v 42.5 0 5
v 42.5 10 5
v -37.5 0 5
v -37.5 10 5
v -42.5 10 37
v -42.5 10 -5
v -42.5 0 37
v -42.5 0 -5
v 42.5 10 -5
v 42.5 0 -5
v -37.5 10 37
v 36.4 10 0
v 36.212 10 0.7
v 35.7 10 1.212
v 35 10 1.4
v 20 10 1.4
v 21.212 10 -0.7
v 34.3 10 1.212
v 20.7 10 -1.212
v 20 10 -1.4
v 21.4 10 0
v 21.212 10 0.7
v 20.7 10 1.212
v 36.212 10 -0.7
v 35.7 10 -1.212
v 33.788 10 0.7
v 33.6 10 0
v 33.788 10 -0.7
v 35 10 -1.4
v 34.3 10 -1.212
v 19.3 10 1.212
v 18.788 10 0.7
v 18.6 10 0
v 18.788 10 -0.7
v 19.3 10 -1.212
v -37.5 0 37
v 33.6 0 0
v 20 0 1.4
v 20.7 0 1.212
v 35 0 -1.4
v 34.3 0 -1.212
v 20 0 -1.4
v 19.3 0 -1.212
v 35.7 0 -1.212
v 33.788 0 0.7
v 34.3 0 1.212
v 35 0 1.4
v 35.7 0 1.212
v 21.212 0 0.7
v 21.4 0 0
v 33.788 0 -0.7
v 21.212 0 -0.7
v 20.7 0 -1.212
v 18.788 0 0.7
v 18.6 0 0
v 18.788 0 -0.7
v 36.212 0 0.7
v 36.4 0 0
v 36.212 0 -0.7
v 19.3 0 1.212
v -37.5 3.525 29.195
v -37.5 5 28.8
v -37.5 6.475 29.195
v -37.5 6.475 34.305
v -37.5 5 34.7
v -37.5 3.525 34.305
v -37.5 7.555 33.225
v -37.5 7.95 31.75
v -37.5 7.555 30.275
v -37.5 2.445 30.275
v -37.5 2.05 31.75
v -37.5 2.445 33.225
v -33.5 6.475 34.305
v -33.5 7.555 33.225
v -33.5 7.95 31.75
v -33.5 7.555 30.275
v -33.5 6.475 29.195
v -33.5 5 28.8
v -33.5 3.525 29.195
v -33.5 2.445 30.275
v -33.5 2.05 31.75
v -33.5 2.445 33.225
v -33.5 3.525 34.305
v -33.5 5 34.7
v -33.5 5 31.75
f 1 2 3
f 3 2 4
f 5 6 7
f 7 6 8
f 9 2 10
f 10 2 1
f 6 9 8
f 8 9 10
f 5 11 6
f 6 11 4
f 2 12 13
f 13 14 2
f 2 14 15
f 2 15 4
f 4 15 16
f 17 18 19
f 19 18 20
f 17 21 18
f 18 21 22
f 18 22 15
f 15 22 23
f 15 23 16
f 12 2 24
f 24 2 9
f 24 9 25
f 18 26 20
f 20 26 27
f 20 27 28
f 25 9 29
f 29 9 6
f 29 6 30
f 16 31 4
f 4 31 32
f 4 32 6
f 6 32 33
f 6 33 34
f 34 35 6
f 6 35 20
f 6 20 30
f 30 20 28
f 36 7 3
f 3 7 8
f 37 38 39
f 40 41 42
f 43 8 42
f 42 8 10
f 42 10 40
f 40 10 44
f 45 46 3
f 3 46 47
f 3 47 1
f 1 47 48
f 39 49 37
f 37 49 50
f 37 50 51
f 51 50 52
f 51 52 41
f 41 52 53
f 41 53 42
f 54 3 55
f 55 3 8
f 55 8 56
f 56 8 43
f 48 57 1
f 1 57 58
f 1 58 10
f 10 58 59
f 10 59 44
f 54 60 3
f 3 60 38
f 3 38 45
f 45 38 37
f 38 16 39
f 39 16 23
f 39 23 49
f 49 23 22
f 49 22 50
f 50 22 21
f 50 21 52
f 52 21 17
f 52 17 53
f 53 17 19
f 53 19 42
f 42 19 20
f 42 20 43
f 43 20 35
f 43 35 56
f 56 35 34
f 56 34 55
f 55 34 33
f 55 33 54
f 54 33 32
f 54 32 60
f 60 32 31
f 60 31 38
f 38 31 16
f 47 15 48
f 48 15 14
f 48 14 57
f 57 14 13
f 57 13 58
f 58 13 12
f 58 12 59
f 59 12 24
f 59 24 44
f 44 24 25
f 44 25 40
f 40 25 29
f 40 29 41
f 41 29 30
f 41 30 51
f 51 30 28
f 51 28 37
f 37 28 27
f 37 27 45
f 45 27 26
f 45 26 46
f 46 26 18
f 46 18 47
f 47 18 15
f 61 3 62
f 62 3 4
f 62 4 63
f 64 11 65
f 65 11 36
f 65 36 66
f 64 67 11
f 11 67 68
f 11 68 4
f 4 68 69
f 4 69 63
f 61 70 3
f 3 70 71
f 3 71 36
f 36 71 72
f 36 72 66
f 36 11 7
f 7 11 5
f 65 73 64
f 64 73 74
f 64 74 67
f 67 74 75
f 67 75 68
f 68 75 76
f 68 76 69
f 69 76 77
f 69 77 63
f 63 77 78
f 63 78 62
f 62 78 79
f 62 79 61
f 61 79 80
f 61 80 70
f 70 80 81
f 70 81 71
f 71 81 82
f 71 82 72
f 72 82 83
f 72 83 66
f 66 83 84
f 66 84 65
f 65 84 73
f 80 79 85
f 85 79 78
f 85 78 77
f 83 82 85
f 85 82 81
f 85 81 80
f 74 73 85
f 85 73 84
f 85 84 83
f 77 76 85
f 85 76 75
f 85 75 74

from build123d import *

# Parameters (mm, degrees)
SKETCH1_W           = 85
SKETCH1_H           = 10
BOSS_EXTRUDE1_DEPTH = 10
SKETCH2_R           = 1.4
CUT_EXTRUDE1_DEPTH  = 10
SKETCH3_W           = 5
SKETCH3_H           = 10
BOSS_EXTRUDE2_DEPTH = 32
SKETCH4_R           = 2.95
BOSS_EXTRUDE3_DEPTH = 4


with BuildPart() as part:
    # Sketch1 → Boss-Extrude1 (new body)
    with BuildSketch(Plane(origin=(0, 0, 0), x_dir=(1, 0, 0), z_dir=(0, 1, 0))):
        Rectangle(SKETCH1_W, SKETCH1_H)
    extrude(amount=BOSS_EXTRUDE1_DEPTH)

    # Sketch2 → Cut-Extrude1 (cut)
    with BuildSketch(Plane(origin=(0, 10, 0), x_dir=(1, 0, 0), z_dir=(0, 1, 0))):
        with Locations(Location((35, 0, 0), (0, 0, 270))):
            Circle(SKETCH2_R)
        with Locations(Location((20, 0, 0), (0, 0, 270))):
            Circle(SKETCH2_R)
    extrude(amount=-CUT_EXTRUDE1_DEPTH, mode=Mode.SUBTRACT)

    # Sketch3 → Boss-Extrude2 (add)
    with BuildSketch(Plane.XY.offset(5)):
        with Locations((-40, 5)):
            Rectangle(SKETCH3_W, SKETCH3_H)
    extrude(amount=BOSS_EXTRUDE2_DEPTH)

    # Sketch4 → Boss-Extrude3 (add)
    with BuildSketch(Plane(origin=(-37.5, 0, 0), x_dir=(0, 0, -1), z_dir=(1, 0, 0))):
        with Locations(Location((-31.75, 5, 0), (0, 0, 180))):
            Circle(SKETCH4_R)
    extrude(amount=BOSS_EXTRUDE3_DEPTH)


solid = part.part
